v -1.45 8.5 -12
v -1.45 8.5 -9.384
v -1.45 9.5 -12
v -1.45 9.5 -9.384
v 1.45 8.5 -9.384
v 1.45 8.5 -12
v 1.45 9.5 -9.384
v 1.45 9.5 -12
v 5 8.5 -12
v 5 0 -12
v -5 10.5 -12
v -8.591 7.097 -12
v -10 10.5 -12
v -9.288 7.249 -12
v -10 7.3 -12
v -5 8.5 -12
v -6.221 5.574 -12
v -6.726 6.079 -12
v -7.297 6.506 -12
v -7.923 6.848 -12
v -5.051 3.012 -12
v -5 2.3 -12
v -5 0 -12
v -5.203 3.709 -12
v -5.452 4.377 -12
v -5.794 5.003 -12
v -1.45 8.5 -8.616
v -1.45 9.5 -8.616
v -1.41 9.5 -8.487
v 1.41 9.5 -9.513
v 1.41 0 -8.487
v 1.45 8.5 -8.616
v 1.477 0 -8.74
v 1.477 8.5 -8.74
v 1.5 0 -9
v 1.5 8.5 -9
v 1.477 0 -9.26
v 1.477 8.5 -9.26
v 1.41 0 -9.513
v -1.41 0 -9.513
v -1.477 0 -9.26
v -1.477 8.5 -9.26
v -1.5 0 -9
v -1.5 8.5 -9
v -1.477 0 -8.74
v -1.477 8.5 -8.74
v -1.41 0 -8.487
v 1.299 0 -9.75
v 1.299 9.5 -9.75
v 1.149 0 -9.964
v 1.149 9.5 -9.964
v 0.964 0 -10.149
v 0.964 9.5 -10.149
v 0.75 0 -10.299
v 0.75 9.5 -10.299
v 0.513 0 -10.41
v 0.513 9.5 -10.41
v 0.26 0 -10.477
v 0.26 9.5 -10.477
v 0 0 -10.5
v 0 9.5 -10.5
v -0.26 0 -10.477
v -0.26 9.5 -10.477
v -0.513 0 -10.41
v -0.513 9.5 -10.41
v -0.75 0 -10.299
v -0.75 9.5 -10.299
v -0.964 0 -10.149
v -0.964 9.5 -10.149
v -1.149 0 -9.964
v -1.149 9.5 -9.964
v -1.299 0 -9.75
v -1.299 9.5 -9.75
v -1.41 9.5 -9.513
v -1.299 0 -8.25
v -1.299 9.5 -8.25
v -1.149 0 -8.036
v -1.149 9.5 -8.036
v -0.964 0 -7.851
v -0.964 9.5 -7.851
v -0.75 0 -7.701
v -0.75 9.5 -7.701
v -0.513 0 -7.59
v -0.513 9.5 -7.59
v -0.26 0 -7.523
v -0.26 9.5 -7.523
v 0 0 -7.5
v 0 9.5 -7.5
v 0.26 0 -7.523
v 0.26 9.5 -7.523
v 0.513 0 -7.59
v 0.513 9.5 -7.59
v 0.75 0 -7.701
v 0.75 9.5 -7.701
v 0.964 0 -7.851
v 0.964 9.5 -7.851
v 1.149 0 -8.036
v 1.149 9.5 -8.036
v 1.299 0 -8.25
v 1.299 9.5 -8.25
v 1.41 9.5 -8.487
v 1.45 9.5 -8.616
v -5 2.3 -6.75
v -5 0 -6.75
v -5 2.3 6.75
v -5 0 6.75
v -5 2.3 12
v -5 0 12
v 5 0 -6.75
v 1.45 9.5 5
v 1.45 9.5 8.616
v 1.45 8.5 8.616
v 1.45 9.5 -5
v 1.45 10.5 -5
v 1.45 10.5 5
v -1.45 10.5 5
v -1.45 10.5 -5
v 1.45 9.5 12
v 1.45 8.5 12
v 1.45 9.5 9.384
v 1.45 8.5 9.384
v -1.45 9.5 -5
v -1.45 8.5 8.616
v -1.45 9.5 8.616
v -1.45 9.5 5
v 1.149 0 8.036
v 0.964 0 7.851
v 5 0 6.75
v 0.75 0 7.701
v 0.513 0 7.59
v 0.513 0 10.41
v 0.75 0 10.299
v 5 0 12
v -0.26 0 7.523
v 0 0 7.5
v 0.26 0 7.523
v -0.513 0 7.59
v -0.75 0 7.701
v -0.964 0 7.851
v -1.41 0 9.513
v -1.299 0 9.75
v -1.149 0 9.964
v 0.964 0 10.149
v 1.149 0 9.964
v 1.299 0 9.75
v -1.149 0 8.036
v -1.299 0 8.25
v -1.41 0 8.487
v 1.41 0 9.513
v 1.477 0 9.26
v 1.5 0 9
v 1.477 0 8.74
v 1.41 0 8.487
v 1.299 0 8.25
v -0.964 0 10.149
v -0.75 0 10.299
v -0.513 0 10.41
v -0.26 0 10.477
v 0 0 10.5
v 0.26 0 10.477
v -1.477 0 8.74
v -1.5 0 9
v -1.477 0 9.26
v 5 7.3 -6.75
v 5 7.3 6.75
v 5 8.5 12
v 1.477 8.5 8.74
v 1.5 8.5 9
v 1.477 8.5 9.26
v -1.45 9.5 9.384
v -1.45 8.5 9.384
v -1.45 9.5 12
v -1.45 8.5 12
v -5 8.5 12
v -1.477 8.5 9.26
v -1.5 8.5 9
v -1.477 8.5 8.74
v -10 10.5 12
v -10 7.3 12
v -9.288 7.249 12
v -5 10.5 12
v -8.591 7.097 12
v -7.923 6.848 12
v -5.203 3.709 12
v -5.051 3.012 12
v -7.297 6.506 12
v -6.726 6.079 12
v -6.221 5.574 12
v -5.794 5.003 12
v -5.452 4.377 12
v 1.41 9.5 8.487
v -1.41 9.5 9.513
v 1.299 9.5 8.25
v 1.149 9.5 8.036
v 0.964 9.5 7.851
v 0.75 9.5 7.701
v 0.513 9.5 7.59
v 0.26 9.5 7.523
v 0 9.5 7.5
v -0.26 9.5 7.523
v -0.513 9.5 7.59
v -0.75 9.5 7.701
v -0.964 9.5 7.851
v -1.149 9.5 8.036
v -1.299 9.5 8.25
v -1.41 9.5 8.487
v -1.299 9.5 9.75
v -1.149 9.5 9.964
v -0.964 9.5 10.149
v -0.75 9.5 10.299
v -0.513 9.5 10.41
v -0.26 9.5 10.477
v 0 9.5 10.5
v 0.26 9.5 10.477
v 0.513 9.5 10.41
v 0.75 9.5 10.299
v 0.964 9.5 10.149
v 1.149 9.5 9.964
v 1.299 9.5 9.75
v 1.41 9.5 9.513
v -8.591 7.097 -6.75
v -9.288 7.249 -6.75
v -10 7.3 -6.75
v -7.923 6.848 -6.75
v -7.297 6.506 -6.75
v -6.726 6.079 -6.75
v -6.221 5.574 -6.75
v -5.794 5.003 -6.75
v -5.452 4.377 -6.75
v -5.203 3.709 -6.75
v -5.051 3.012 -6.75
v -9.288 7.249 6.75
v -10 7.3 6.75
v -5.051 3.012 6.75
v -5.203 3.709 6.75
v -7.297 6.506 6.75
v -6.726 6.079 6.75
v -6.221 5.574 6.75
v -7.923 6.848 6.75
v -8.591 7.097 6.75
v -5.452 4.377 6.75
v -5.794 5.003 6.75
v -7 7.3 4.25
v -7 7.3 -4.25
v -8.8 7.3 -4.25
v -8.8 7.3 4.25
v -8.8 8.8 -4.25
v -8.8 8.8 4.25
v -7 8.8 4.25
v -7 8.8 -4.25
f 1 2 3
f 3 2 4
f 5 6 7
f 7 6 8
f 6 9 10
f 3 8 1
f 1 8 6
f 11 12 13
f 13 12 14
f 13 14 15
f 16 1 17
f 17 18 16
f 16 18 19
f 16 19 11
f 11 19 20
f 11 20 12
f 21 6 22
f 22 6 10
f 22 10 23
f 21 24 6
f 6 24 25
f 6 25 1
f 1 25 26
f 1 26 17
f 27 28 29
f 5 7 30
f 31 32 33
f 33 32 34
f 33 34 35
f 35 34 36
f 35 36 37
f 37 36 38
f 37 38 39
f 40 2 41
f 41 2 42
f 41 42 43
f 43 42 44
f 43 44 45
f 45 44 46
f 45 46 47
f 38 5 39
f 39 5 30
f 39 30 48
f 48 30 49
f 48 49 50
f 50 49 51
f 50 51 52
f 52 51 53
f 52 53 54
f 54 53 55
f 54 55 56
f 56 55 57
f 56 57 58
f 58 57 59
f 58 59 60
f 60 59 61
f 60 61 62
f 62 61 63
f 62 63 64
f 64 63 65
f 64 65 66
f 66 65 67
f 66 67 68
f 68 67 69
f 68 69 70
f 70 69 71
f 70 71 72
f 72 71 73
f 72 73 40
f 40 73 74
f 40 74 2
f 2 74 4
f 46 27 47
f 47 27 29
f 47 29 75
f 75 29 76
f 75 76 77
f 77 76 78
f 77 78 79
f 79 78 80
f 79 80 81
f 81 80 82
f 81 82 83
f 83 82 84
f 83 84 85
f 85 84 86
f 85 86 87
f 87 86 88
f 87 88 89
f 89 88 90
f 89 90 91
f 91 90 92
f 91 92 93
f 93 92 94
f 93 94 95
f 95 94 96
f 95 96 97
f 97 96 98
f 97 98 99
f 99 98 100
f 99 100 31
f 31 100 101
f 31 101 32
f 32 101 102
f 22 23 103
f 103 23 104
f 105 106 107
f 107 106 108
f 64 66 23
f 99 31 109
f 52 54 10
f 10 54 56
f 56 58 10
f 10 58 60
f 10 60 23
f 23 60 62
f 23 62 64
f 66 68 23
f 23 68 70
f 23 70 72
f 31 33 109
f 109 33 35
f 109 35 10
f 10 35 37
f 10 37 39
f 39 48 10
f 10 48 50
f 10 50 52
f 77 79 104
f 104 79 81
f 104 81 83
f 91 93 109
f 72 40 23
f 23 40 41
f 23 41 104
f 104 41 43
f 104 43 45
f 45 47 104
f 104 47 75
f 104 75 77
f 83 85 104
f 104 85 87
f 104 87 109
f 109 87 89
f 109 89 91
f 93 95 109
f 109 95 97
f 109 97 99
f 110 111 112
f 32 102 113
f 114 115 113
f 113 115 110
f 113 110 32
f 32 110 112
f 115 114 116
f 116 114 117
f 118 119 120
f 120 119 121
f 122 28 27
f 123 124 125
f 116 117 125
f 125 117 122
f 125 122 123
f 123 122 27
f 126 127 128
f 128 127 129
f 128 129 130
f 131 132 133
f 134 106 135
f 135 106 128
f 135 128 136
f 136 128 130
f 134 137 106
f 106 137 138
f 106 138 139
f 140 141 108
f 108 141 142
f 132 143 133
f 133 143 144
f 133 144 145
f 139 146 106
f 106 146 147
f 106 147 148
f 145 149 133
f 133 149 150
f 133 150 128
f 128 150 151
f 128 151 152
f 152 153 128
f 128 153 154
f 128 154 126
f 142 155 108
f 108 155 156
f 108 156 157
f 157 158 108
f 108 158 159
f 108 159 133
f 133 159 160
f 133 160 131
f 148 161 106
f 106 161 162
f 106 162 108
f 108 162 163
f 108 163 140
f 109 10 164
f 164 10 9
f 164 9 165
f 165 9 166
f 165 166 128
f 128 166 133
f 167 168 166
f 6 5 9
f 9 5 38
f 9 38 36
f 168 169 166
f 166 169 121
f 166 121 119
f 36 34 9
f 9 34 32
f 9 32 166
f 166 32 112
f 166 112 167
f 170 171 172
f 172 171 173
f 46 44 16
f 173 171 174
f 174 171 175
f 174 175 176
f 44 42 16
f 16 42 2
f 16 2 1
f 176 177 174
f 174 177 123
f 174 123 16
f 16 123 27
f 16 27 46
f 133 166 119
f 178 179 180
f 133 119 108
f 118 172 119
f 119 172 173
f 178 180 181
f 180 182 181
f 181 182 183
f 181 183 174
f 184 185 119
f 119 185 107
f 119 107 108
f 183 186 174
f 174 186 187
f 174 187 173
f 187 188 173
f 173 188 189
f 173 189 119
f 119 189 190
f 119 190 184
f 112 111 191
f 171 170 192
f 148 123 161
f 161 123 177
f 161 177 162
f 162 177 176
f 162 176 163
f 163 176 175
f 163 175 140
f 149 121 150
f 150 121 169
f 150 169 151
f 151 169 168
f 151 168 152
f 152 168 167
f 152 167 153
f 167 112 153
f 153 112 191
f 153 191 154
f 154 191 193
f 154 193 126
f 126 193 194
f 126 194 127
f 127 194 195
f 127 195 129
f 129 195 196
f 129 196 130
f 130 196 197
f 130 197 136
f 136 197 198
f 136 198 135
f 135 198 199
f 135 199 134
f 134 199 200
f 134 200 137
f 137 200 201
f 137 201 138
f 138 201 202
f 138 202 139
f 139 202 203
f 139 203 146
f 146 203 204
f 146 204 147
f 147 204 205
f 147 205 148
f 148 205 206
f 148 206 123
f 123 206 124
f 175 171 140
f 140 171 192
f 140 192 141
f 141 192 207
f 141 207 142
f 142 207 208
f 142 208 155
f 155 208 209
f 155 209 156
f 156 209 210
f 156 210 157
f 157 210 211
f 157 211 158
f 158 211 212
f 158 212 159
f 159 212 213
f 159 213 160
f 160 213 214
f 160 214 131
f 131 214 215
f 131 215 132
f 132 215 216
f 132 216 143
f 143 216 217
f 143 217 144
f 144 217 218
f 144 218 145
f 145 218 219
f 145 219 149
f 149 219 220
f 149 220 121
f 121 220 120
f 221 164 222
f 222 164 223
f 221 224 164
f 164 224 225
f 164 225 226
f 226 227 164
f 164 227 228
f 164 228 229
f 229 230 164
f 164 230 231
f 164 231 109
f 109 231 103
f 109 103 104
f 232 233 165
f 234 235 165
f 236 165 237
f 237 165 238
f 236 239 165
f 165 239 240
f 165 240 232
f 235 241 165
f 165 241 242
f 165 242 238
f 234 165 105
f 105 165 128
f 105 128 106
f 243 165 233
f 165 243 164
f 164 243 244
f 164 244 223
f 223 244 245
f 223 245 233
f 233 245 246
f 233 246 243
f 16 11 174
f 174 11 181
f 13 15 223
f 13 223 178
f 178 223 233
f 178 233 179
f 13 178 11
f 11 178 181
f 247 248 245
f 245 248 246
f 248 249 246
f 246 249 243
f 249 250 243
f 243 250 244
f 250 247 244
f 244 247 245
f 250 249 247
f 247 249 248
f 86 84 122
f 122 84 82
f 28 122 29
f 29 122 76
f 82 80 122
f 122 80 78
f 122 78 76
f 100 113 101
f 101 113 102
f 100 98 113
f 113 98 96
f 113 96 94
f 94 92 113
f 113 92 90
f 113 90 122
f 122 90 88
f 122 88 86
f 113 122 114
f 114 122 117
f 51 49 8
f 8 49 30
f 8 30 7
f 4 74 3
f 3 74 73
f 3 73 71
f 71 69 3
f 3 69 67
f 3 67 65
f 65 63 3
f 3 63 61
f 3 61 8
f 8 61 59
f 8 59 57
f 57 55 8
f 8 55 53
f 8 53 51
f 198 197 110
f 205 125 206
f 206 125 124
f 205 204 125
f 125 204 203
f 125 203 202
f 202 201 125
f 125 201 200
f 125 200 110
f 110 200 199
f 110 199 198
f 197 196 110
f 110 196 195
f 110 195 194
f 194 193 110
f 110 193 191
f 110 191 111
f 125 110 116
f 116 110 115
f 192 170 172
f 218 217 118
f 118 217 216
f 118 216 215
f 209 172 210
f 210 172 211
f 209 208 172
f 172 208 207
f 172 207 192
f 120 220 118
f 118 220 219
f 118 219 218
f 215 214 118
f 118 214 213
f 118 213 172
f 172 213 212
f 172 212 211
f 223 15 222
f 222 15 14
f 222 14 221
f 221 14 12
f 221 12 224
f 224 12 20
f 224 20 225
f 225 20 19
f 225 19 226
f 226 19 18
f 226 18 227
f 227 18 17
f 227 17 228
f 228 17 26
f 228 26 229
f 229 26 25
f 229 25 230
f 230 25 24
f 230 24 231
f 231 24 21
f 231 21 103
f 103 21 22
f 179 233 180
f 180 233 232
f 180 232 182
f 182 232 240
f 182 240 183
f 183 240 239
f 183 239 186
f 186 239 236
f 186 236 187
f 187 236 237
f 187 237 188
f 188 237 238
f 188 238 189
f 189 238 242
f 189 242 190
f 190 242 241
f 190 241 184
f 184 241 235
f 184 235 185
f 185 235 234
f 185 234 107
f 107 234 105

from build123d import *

# Parameters (mm, degrees)
MAIN_DEPTH                      = 12
SKETCH2_R                       = 1.5
HOLEMAKERBEAMFIX_DEPTH          = 17.710774967
SKETCH3_W                       = 10
SKETCH3_H                       = 13.5
MAINCONNECTORHOLE_DEPTH         = 7.3
SKETCH4_W                       = 5
SKETCH4_H                       = 24
CONNECTORSUPPORTEXTENSION_DEPTH = 3.2
SKETCH5_W                       = 1.8
SKETCH5_H                       = 8.5
CONNECTORRAILHOLE_DEPTH         = 1.5
SKETCH6_W                       = 2.9
SKETCH6_H                       = 7
CUT_EXTRUDE4_DEPTH              = 1
FILLET3_R                       = 5


with BuildPart() as part:
    # Sketch1 → Main (new, symmetric)
    with BuildSketch(Plane.XY):
        Polygon((-5, 8.5), (-5, 0), (5, 0), (5, 8.5), (1.45, 8.5), (1.45, 10.5), (-1.45, 10.5), (-1.45, 8.5), align=None)
    extrude(amount=MAIN_DEPTH, both=True)

    # Sketch2 → HoleMakerBeamFix (cut, through all)
    with BuildSketch(Plane(origin=(0, 10.5, 0), x_dir=(1, 0, 0), z_dir=(0, 1, 0))):
        with Locations(Location((0, -9, 0), (0, 0, 270))):
            Circle(SKETCH2_R)
        with Locations(Location((0, 9, 0), (0, 0, 270))):
            Circle(SKETCH2_R)
    extrude(amount=-HOLEMAKERBEAMFIX_DEPTH, mode=Mode.SUBTRACT)

    # Sketch3 → MainConnectorHole (cut)
    with BuildSketch(Plane(origin=(0, 0, 0), x_dir=(-1, 0, 0), z_dir=(0, -1, 0))):
        Rectangle(SKETCH3_W, SKETCH3_H)
    extrude(amount=-MAINCONNECTORHOLE_DEPTH, mode=Mode.SUBTRACT)

    # Sketch4 → ConnectorSupportExtension (add)
    with BuildSketch(Plane(origin=(0, 7.3, 0), x_dir=(-1, 0, 0), z_dir=(0, -1, 0))):
        with Locations((7.5, 0)):
            Rectangle(SKETCH4_W, SKETCH4_H)
    extrude(amount=-CONNECTORSUPPORTEXTENSION_DEPTH)

    # Sketch5 → ConnectorRailHole (cut)
    with BuildSketch(Plane(origin=(0, 7.3, 0), x_dir=(-1, 0, 0), z_dir=(0, -1, 0))):
        with Locations((7.9, 0)):
            Rectangle(SKETCH5_W, SKETCH5_H)
    extrude(amount=-CONNECTORRAILHOLE_DEPTH, mode=Mode.SUBTRACT)

    # Sketch6 → Cut-Extrude4 (cut)
    with BuildSketch(Plane(origin=(0, 10.5, 0), x_dir=(1, 0, 0), z_dir=(0, 1, 0))):
        with Locations((0, 8.5)):
            Rectangle(SKETCH6_W, SKETCH6_H)
        with Locations((0, -8.5)):
            Rectangle(SKETCH6_W, SKETCH6_H)
    extrude(amount=-CUT_EXTRUDE4_DEPTH, mode=Mode.SUBTRACT)

    # Fillet3
    fillet3_edges = [part.edges().sort_by_distance(p)[0] for p in [
        (-5, 7.3, -9.375),
        (-5, 7.3, 9.375),
    ]]
    fillet(fillet3_edges, radius=FILLET3_R - 0.0001)  # a hair under: the kernel refuses the full size


solid = part.part
